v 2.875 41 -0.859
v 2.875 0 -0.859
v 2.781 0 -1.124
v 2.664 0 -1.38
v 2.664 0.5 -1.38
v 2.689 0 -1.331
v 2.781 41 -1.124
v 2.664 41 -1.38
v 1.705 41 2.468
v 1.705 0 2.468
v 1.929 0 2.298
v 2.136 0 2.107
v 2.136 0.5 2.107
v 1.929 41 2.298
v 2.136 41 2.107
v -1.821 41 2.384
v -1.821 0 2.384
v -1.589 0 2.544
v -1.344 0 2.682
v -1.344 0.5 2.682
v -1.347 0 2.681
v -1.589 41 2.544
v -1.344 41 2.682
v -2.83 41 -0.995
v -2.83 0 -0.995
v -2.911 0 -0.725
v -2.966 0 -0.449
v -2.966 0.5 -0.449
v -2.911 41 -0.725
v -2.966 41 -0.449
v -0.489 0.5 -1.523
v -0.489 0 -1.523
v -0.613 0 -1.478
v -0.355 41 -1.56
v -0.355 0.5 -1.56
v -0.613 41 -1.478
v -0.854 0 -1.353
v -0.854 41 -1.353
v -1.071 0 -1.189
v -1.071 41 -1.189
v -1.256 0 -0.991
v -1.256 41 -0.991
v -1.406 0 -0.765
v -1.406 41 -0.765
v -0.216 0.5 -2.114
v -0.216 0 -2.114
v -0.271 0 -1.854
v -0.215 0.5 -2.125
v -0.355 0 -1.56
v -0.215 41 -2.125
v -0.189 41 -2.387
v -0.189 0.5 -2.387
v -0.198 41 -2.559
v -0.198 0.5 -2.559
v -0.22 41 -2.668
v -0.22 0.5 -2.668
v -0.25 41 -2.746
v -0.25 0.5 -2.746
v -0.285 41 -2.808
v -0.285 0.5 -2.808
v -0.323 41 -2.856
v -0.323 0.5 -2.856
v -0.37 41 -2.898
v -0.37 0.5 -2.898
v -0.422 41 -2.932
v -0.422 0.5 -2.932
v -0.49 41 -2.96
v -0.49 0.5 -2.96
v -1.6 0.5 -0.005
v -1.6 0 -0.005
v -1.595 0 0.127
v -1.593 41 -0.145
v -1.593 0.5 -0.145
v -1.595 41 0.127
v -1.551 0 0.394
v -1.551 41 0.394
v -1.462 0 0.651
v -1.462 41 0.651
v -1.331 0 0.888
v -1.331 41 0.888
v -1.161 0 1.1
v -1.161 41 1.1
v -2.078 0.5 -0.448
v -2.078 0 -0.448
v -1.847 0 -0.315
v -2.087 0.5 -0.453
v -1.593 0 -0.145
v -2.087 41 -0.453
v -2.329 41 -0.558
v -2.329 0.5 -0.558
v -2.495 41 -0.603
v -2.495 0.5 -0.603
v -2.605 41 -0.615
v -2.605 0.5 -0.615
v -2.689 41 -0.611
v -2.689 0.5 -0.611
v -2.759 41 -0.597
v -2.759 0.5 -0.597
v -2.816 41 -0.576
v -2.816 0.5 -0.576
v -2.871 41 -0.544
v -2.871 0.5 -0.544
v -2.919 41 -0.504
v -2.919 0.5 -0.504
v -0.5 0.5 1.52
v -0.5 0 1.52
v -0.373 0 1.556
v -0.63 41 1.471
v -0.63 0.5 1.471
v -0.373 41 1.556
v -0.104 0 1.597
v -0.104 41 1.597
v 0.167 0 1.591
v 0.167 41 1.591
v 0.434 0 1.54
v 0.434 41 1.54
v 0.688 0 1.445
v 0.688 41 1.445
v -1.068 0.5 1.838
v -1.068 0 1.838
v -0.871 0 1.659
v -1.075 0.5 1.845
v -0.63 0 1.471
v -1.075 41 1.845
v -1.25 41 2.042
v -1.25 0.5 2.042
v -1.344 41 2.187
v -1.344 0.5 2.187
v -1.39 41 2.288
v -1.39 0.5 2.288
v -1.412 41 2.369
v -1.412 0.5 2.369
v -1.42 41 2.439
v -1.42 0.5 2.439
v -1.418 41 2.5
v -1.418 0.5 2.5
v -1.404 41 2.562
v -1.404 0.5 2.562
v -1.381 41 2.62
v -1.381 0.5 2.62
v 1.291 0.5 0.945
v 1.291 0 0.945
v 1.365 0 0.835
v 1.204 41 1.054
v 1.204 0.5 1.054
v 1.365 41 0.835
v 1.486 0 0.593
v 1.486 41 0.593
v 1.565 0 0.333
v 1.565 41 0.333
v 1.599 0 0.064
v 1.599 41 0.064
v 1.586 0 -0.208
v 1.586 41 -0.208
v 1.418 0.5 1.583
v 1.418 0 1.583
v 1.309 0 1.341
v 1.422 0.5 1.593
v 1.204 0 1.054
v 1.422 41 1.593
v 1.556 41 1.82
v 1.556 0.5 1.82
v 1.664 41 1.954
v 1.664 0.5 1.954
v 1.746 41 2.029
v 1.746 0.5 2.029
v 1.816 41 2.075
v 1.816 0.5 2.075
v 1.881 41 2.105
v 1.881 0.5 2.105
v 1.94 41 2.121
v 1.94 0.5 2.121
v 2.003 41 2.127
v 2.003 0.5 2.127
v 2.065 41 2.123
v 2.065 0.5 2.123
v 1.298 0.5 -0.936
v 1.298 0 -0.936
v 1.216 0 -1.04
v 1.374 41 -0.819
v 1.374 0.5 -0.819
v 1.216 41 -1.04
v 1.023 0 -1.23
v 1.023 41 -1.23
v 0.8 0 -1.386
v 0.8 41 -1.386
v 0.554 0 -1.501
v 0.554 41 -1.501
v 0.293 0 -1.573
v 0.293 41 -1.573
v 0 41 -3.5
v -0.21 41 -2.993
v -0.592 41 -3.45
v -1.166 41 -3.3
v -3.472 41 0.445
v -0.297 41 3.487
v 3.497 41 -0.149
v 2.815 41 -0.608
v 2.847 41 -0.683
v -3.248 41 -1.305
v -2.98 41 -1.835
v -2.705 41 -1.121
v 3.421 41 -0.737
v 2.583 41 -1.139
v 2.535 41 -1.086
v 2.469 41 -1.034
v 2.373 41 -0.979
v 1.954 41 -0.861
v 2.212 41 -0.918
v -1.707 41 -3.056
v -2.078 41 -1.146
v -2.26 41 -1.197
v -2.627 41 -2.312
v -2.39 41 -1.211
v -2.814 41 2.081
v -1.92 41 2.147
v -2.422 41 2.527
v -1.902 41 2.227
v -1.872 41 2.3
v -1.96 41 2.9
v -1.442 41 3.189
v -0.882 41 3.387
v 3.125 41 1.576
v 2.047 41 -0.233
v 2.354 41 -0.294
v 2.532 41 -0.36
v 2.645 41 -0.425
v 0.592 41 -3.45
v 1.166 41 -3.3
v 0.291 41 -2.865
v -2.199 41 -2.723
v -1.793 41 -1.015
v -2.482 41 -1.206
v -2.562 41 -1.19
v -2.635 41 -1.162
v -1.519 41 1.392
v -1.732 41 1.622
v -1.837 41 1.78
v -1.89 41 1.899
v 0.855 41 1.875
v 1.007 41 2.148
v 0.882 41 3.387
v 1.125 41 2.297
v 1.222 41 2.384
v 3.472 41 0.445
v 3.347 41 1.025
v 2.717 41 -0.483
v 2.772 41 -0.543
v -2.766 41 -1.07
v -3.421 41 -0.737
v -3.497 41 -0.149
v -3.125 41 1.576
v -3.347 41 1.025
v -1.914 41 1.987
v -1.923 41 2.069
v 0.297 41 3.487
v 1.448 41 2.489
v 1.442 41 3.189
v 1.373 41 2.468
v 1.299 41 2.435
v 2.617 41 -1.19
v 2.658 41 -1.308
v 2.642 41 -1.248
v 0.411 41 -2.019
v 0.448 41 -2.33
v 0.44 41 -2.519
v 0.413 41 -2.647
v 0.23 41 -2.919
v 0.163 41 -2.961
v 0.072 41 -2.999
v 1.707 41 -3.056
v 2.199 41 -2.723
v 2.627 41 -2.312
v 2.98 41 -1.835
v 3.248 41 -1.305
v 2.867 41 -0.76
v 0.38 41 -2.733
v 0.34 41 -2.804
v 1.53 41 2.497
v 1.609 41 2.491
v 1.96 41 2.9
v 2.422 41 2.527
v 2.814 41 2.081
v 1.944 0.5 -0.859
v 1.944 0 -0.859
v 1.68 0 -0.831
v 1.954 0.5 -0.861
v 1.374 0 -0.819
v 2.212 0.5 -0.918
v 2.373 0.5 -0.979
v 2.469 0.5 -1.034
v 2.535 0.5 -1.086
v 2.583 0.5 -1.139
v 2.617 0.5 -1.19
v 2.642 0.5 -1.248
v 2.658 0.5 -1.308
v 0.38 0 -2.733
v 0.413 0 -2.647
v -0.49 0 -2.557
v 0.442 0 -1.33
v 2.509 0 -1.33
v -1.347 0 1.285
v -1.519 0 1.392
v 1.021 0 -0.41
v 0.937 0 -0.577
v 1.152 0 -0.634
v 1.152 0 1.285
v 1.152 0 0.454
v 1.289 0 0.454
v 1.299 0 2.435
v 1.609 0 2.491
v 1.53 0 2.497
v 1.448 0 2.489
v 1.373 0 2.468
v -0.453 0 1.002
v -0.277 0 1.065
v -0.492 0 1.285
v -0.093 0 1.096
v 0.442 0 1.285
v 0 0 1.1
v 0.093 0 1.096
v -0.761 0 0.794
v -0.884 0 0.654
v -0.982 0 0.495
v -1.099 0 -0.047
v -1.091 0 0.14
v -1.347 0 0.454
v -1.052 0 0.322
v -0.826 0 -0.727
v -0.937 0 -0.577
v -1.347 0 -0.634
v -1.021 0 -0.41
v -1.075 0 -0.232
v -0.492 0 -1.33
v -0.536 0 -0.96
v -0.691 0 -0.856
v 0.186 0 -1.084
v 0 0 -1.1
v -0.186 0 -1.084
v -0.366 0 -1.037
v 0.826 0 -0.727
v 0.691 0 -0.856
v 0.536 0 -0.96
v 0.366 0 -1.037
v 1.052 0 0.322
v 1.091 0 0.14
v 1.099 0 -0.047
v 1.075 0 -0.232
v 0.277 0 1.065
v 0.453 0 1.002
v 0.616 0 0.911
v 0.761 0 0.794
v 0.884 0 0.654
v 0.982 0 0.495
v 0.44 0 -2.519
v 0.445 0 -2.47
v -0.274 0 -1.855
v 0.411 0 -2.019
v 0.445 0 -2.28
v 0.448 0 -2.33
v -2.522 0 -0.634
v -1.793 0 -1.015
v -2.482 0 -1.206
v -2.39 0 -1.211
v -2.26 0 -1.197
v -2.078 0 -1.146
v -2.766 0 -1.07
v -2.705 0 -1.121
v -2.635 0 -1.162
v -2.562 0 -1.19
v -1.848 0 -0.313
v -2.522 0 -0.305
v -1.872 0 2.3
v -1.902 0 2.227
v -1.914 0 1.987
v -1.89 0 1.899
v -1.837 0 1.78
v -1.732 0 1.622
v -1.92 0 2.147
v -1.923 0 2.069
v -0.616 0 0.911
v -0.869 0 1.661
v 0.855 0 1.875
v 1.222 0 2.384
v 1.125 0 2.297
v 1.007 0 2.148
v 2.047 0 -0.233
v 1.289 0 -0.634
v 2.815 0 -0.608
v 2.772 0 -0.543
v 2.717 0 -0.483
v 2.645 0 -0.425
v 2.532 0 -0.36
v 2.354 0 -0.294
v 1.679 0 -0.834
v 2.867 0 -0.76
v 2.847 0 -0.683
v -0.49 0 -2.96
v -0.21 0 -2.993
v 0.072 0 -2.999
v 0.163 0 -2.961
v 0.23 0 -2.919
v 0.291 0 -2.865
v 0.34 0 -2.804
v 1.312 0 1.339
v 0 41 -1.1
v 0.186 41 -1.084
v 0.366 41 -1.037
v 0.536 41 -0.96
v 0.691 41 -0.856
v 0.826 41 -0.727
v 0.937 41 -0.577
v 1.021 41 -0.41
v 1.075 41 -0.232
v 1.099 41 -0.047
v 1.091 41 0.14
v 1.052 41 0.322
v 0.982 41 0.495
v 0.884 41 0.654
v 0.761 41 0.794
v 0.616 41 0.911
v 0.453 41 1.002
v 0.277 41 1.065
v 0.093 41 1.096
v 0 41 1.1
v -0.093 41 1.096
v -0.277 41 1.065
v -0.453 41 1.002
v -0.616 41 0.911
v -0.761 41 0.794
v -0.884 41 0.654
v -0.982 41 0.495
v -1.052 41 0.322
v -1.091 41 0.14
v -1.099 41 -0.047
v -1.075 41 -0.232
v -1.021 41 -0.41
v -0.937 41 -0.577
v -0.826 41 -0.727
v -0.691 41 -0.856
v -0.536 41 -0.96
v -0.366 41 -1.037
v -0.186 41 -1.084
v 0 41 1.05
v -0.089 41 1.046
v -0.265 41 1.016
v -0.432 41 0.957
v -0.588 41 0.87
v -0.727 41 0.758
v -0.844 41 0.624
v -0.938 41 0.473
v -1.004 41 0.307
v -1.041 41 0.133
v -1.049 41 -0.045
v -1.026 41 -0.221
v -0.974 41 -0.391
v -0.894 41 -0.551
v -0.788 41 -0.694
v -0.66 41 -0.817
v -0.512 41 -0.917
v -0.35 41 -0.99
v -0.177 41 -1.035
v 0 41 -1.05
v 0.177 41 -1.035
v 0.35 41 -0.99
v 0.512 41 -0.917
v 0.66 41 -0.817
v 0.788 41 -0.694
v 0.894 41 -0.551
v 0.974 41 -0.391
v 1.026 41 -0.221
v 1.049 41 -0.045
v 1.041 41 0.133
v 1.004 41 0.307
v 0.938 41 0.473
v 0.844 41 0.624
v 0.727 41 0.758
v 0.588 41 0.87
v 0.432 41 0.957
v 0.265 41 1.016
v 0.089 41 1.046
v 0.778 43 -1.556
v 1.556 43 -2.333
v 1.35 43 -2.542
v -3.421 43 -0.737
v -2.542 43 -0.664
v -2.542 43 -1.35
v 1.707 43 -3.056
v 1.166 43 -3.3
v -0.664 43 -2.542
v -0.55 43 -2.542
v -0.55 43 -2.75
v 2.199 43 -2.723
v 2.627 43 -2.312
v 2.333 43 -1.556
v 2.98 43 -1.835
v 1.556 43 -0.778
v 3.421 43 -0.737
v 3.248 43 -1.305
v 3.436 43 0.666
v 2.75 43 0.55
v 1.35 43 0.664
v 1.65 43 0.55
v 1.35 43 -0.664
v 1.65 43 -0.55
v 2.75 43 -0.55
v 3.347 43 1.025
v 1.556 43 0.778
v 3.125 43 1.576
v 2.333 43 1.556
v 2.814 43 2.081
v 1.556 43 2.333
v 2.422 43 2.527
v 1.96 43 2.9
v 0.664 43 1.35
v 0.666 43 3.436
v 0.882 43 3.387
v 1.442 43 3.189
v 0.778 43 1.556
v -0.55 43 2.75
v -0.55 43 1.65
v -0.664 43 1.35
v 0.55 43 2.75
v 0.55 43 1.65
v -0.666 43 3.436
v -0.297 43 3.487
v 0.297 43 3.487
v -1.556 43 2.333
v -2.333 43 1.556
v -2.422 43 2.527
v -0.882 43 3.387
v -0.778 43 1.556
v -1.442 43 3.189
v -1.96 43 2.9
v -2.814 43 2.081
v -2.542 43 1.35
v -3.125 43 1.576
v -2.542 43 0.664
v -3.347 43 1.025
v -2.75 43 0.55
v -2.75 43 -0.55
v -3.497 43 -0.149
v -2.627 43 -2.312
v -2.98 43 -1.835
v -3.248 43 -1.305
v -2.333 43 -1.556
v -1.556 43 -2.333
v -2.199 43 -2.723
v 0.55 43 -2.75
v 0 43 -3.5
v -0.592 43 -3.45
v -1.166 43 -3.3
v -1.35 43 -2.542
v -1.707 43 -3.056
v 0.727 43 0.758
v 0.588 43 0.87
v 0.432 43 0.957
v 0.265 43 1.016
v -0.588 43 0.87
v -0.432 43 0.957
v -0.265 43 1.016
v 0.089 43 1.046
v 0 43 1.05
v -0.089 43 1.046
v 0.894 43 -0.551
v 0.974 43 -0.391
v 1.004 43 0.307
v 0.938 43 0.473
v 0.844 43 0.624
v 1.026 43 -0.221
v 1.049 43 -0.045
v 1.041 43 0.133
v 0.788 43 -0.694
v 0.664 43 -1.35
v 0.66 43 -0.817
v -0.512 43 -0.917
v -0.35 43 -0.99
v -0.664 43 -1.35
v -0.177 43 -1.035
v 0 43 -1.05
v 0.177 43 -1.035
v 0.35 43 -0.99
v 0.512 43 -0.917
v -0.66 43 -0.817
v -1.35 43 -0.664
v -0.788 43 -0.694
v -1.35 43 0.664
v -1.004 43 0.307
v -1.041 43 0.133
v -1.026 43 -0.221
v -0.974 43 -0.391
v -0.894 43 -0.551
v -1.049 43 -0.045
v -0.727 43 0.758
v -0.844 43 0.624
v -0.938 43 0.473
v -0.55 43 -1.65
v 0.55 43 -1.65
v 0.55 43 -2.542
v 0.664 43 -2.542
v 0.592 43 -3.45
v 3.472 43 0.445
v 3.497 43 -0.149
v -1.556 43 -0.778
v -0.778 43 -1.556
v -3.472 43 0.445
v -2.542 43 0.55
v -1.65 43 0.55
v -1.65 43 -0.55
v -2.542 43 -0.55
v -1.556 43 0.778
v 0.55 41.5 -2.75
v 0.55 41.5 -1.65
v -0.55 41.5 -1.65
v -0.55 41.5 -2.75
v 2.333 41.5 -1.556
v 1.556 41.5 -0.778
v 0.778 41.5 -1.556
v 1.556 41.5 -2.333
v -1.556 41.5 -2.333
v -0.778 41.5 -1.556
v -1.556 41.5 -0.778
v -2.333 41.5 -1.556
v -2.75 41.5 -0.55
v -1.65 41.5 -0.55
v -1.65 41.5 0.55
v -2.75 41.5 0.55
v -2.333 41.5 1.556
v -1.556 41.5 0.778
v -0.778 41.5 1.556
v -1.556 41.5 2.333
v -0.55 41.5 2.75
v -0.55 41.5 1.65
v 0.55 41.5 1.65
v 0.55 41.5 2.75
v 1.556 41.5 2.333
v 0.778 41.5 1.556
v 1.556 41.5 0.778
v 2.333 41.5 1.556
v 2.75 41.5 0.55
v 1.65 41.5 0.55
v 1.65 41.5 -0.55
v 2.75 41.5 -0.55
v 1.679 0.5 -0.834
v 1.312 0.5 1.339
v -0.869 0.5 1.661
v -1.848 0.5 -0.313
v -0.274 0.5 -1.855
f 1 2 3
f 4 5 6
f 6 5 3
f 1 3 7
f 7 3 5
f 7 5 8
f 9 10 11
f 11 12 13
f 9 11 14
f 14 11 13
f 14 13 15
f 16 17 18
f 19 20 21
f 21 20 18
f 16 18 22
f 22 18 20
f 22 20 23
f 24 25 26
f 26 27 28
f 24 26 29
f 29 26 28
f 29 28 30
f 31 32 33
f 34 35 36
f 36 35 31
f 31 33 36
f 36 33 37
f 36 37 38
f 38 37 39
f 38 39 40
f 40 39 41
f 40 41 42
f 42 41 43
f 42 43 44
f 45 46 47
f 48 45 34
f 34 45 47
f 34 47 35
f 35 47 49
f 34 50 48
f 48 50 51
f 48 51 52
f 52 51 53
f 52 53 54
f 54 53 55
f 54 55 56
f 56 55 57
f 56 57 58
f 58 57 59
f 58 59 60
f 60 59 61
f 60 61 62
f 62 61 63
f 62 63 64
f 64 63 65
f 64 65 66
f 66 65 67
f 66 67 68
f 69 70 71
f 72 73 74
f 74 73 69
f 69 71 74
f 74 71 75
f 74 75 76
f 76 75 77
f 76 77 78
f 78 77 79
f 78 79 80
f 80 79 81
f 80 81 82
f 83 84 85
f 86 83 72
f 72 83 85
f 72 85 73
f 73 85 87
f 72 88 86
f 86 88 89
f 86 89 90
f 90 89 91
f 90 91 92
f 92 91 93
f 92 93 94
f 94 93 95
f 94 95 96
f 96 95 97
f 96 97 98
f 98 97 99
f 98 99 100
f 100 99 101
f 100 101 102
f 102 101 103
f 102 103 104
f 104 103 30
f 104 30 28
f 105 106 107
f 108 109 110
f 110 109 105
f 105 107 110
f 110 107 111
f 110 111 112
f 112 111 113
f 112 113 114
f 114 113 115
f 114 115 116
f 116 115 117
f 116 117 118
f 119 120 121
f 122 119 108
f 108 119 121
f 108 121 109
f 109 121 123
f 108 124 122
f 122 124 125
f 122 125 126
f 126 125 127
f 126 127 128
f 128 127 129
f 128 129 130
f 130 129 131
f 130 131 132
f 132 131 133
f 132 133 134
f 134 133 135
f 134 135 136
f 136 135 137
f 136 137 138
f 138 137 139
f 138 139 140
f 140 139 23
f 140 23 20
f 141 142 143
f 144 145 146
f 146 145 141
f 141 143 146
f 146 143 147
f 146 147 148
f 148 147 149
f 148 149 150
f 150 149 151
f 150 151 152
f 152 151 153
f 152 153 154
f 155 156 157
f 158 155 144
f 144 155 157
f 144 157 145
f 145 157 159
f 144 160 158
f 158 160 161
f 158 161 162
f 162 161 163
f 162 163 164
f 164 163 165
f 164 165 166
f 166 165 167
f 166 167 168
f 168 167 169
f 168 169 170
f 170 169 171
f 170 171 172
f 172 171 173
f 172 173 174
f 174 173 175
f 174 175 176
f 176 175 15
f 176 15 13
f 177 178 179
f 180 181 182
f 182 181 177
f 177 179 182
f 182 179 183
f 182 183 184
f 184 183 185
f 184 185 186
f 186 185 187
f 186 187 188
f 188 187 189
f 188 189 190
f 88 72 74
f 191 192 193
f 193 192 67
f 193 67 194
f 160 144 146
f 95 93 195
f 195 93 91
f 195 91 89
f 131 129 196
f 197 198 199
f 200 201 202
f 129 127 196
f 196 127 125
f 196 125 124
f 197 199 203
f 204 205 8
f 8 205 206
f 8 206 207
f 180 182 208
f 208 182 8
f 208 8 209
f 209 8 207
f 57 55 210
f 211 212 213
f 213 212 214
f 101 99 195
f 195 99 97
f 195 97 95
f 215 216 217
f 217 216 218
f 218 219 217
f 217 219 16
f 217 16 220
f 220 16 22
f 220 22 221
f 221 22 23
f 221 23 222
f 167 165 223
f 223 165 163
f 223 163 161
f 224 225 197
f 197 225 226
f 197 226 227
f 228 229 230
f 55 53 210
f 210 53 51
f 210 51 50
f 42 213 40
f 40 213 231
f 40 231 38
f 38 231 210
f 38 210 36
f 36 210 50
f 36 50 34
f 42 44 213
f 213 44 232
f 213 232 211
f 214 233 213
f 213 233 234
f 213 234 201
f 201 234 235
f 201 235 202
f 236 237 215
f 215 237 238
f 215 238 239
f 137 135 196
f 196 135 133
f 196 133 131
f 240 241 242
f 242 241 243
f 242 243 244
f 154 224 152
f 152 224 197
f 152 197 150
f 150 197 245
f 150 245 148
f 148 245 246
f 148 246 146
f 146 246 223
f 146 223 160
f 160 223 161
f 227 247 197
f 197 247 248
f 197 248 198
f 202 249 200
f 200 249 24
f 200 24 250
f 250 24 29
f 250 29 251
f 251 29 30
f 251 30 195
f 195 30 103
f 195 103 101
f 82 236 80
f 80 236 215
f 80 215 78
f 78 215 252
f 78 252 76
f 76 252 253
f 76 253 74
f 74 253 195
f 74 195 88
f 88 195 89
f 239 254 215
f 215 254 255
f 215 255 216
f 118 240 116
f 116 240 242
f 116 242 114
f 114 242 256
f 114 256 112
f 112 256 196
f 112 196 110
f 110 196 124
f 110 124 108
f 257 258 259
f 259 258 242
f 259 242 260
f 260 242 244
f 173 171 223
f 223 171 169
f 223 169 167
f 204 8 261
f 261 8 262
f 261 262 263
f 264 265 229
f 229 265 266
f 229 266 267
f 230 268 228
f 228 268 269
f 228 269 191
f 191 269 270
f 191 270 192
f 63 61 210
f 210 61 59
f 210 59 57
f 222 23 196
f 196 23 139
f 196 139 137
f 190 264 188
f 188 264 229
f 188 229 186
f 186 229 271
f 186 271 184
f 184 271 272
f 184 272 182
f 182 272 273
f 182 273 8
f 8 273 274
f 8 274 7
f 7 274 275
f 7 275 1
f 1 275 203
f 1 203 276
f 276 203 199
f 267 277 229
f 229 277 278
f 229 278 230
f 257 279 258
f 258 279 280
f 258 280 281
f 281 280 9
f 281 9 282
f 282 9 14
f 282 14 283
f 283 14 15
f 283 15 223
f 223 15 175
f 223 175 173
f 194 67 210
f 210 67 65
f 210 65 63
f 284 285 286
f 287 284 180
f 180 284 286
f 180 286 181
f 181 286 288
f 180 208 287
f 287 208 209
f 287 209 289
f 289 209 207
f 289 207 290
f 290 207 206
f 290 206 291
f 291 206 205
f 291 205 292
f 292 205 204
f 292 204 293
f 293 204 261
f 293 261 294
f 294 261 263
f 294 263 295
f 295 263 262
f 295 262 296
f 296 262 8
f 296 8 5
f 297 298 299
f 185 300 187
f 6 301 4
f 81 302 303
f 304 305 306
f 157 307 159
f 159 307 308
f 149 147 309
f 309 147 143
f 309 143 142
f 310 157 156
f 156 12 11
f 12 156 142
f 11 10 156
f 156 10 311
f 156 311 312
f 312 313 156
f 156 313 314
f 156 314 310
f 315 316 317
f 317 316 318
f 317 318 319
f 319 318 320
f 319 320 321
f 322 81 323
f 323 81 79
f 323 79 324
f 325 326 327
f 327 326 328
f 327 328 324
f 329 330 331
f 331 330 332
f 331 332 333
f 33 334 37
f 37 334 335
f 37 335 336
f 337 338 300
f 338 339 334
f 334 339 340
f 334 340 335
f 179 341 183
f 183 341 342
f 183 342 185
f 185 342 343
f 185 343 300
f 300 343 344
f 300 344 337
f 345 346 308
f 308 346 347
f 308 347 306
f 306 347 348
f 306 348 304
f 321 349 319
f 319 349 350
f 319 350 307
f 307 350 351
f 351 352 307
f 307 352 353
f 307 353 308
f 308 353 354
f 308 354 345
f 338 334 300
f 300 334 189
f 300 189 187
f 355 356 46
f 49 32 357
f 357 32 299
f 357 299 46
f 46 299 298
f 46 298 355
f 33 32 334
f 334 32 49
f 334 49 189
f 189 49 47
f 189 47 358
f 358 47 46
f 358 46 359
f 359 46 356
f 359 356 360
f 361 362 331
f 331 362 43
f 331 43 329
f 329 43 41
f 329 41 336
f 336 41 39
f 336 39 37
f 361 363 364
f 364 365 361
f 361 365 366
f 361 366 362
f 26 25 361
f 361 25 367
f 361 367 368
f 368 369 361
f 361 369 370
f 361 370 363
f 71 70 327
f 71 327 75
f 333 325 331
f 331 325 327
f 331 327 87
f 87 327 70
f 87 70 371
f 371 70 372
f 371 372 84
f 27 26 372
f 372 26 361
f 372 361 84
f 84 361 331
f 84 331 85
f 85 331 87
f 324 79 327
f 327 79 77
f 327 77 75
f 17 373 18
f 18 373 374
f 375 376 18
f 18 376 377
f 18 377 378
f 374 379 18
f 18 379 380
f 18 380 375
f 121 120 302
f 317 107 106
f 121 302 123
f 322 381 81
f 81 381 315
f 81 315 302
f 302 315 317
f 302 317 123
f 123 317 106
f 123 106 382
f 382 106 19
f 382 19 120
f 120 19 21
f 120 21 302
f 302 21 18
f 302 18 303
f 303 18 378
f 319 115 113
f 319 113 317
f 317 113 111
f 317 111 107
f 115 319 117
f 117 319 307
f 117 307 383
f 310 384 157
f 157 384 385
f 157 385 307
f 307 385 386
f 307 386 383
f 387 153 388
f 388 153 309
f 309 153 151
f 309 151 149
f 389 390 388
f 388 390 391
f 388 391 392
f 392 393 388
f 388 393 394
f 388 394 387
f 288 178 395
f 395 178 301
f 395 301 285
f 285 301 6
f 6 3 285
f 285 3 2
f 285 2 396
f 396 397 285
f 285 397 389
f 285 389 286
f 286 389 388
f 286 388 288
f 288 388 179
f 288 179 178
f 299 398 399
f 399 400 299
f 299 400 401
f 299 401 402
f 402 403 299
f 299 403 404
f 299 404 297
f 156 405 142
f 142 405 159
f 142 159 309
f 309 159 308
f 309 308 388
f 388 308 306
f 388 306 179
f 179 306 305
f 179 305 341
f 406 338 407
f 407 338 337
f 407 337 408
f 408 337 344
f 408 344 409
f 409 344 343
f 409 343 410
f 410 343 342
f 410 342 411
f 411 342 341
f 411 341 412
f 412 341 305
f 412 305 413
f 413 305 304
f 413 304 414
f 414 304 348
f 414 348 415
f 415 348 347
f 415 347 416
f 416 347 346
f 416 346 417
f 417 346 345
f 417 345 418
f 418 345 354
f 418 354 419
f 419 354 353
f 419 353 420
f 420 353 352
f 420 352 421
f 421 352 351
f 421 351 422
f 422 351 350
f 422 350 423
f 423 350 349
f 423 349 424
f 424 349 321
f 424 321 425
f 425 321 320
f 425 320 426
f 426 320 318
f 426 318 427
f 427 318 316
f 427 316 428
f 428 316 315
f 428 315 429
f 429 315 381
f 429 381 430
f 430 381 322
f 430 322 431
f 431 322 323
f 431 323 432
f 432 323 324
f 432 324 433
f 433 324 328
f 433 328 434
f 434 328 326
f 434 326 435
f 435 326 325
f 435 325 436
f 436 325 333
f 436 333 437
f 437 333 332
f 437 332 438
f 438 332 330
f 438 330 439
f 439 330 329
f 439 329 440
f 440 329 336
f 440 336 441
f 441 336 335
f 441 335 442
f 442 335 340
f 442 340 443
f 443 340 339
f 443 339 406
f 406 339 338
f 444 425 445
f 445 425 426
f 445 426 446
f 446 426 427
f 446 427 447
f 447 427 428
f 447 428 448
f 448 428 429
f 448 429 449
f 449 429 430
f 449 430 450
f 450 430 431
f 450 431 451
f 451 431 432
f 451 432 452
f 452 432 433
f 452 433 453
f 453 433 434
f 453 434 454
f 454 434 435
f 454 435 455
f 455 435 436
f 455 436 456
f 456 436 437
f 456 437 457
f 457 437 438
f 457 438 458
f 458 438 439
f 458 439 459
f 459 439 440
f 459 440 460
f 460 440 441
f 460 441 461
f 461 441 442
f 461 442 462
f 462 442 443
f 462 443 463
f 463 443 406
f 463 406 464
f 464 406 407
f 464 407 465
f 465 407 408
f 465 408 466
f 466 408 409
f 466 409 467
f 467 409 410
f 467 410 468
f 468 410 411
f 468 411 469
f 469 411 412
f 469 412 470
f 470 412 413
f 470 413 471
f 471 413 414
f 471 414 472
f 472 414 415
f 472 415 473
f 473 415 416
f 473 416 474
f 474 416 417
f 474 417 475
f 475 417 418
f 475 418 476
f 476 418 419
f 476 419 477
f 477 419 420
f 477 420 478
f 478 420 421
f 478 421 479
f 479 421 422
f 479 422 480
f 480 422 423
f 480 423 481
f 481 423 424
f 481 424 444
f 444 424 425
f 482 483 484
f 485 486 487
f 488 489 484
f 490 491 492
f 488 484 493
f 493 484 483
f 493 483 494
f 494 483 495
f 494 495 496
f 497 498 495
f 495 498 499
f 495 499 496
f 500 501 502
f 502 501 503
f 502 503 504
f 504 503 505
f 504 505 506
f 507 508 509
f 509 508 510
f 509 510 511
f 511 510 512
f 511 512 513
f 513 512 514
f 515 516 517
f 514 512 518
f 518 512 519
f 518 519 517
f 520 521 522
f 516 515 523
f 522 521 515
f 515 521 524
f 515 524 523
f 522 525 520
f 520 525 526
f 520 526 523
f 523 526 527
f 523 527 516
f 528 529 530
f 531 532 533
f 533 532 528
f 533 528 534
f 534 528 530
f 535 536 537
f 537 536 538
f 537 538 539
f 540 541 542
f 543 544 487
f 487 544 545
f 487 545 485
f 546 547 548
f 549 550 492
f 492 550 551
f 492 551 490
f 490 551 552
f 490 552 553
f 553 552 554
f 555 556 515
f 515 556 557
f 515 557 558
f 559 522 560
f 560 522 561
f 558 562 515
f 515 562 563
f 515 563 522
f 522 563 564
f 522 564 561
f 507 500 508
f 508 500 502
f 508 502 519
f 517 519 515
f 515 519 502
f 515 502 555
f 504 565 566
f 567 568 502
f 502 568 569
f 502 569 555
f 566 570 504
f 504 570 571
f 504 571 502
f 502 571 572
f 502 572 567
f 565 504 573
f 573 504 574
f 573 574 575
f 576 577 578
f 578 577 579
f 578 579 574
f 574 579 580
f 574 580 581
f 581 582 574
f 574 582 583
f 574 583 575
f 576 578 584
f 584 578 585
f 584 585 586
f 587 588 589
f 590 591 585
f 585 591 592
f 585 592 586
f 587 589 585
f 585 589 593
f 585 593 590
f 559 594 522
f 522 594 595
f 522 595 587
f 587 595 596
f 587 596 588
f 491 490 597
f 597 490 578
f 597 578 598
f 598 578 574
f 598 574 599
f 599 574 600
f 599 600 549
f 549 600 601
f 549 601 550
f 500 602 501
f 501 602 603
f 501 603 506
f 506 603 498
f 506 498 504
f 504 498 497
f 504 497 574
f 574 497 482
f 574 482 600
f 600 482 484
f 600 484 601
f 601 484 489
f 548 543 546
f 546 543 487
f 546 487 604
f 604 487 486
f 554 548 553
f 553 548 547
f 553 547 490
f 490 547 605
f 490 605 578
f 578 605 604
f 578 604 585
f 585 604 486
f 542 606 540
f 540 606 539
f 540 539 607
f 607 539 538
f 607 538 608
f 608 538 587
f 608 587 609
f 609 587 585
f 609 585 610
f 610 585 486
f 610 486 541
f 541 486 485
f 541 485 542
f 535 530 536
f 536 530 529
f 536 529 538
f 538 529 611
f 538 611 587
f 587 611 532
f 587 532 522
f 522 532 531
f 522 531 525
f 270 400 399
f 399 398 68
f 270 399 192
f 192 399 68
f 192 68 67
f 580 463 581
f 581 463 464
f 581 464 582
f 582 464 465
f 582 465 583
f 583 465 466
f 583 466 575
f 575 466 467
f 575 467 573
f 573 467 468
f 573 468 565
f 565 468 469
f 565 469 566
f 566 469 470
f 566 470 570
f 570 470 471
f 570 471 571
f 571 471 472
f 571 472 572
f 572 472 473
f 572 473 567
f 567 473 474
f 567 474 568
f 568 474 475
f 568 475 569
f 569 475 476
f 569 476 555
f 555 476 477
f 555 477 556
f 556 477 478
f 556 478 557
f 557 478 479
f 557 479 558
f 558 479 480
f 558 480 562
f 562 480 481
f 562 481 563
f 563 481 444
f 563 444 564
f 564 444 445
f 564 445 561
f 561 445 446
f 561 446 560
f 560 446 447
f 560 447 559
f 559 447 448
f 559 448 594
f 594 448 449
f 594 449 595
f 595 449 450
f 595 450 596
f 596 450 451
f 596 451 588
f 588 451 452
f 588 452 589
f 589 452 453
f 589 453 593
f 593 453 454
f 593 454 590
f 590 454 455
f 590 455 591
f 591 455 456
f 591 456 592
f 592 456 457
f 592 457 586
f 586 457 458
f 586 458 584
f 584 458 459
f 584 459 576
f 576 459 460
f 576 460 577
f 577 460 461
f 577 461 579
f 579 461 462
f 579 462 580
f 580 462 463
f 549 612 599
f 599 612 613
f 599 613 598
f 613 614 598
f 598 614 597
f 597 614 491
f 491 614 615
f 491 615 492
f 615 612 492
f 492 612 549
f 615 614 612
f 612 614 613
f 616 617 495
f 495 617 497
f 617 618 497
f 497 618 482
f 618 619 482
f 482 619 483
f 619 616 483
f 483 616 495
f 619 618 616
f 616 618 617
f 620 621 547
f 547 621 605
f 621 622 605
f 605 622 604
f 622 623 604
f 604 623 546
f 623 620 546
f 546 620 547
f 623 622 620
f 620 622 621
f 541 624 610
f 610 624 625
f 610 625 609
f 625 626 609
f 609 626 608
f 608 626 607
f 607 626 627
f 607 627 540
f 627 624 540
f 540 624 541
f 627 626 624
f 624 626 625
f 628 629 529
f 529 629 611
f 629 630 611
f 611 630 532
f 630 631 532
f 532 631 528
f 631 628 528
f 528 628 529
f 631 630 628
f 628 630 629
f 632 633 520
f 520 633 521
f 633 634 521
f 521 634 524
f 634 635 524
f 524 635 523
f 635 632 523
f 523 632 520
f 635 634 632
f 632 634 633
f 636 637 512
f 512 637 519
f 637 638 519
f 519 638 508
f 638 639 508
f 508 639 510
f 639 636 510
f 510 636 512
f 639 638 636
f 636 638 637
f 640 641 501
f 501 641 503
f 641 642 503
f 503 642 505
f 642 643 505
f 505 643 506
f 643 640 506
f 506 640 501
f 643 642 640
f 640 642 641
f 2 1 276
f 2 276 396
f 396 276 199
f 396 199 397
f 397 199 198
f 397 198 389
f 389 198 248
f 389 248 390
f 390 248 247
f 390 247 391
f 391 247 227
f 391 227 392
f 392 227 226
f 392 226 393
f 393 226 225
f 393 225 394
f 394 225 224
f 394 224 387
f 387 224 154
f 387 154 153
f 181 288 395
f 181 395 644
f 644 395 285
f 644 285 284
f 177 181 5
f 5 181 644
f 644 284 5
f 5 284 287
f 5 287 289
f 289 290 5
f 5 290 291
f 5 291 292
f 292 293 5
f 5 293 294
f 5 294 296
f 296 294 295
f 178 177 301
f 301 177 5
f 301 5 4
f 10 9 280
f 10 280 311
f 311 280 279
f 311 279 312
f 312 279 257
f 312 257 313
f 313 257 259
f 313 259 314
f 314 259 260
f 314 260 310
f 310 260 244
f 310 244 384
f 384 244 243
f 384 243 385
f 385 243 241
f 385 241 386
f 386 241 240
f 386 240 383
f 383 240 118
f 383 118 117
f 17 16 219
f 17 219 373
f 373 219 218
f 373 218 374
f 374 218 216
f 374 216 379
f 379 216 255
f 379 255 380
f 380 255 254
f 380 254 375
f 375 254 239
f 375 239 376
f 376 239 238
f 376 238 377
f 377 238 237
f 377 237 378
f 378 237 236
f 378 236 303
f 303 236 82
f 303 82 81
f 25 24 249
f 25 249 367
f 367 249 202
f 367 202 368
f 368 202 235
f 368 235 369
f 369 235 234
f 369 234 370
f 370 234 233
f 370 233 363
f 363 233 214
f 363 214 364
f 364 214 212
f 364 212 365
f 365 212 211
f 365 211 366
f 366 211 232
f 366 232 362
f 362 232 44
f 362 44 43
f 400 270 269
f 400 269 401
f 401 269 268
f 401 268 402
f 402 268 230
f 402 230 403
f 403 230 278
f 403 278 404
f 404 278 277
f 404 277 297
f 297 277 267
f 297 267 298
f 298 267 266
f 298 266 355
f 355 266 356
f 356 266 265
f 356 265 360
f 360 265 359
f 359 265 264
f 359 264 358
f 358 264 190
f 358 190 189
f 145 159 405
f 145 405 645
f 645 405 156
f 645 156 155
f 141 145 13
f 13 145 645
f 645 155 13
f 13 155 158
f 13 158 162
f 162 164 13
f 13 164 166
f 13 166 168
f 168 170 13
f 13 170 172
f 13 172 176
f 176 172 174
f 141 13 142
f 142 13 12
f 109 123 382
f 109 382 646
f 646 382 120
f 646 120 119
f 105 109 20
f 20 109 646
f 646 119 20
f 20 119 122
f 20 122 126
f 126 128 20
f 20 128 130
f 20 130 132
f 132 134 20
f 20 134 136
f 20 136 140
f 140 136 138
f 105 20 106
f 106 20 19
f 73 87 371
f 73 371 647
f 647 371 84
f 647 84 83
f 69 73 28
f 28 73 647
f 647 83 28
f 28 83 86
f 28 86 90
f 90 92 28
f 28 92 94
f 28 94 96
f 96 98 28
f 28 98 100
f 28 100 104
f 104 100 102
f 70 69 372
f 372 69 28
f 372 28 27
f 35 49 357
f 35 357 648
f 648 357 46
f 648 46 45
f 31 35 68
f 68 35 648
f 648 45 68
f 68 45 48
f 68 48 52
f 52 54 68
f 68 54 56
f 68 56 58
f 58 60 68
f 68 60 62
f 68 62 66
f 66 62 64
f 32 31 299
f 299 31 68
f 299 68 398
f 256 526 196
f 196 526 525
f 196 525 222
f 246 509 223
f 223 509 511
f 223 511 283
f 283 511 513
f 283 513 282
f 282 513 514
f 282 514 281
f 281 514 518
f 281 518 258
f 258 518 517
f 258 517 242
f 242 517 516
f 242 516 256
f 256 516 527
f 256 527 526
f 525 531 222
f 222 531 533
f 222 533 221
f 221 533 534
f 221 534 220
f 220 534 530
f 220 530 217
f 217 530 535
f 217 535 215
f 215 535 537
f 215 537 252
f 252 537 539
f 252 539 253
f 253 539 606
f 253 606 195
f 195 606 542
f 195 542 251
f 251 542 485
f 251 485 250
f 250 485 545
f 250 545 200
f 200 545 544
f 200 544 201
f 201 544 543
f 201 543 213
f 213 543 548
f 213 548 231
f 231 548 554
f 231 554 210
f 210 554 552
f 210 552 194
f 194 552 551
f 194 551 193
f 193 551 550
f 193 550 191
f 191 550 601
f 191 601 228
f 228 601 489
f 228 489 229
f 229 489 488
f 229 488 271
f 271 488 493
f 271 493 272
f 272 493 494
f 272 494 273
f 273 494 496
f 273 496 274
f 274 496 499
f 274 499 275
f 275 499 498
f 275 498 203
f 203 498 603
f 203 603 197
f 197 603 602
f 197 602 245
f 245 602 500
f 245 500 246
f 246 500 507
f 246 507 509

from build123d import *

# Parameters (mm, degrees)
SKETCH1_R           = 1.6
SKETCH1_R_2         = 1.1
BOSS_EXTRUDE1_DEPTH = 41
SKETCH2_R           = 3
SKETCH2_R_2         = 1.05
BOSS_EXTRUDE2_DEPTH = 2
SKETCH4_W           = 1.1
SKETCH4_H           = 1.1
CUT_EXTRUDE2_DEPTH  = 1.5
CIRPATTERN2_COUNT   = 8
BOSS_EXTRUDE3_DEPTH = 41
BOSS_EXTRUDE4_DEPTH = 0.5
CIRPATTERN3_COUNT   = 5
SKETCH9_R           = 3.5
SKETCH9_R_2         = 3
BOSS_EXTRUDE5_DEPTH = 2


with BuildPart() as part:
    # Sketch1 → Boss-Extrude1 (new body)
    with BuildSketch(Plane(origin=(0, 0, 0), x_dir=(1, 0, 0), z_dir=(0, 1, 0))):
        Circle(SKETCH1_R)
        Circle(SKETCH1_R_2, mode=Mode.SUBTRACT)
    extrude(amount=BOSS_EXTRUDE1_DEPTH)

    # Sketch2 → Boss-Extrude2 (add)
    with BuildSketch(Plane(origin=(0, 41, 0), x_dir=(1, 0, 0), z_dir=(0, 1, 0))):
        Circle(SKETCH2_R)
        Circle(SKETCH2_R_2, mode=Mode.SUBTRACT)
    extrude(amount=BOSS_EXTRUDE2_DEPTH)

    # Sketch4 → Cut-Extrude2 (cut)
    with BuildSketch(Plane(origin=(0, 43, 0), x_dir=(1, 0, 0), z_dir=(0, 1, 0))):
        with Locations((0, 2.2)):
            Rectangle(SKETCH4_W, SKETCH4_H)
    cut_extrude2 = extrude(amount=-CUT_EXTRUDE2_DEPTH, mode=Mode.SUBTRACT)

    # CirPattern2: Cut-Extrude2 ×8 about axis
    cirpattern2_axis = Axis((0, 0, 0), (0, 1, 0))
    for i in range(1, CIRPATTERN2_COUNT):
        add(cut_extrude2.rotate(cirpattern2_axis, i * 360 / CIRPATTERN2_COUNT), mode=Mode.SUBTRACT)

    # Sketch6 → Boss-Extrude3 (add)
    with BuildSketch(Plane.XZ.offset(-41)):
        with BuildLine():
            ThreePointArc((1.58647512, -0.20759743), (1.511644009, -0.524339955), (1.374265367, -0.819386783))
            add(Edge.make_bspline(
                [(1.374265367, -0.819386783), (2.663604789, -0.829341718), (2.663604789, -1.380293276)],
                knots=[0, 0, 0, 1, 1, 1], degree=2))
            ThreePointArc((2.663604789, -1.380293276), (2.781312042, -1.124412436), (2.874503573, -0.858620525))
            add(Edge.make_bspline(
                [(1.58647512, -0.20759743), (2.874503573, -0.20759743), (2.874503573, -0.858620525)],
                knots=[0, 0, 0, 1, 1, 1], degree=2))
        make_face()
    boss_extrude3 = extrude(amount=BOSS_EXTRUDE3_DEPTH)

    # Sketch7 → Boss-Extrude4 (add)
    with BuildSketch(Plane(origin=(0, 0, 0), x_dir=(1, 0, 0), z_dir=(0, 1, 0))):
        with BuildLine():
            Line((1.297621609, 0.936043888), (2.663604789, 1.380293276))
            add(Edge.make_bspline(
                [(1.374265367, 0.819386783), (2.874503573, 0.858620525), (2.663604789, 1.380293276)],
                knots=[0, 0, 0, 1, 1, 1], degree=2))
            ThreePointArc((1.374265367, 0.819386783), (1.337216222, 0.878551522), (1.297621609, 0.936043888))
        make_face()
    boss_extrude4 = extrude(amount=BOSS_EXTRUDE4_DEPTH)

    # CirPattern3: Boss-Extrude3, Boss-Extrude4 ×5 about axis
    cirpattern3_axis = Axis((0, 41, 0), (0, -1, 0))
    for i in range(1, CIRPATTERN3_COUNT):
        add(boss_extrude3.rotate(cirpattern3_axis, i * 360 / CIRPATTERN3_COUNT))
        add(boss_extrude4.rotate(cirpattern3_axis, i * 360 / CIRPATTERN3_COUNT))

    # Sketch9 → Boss-Extrude5 (add)
    with BuildSketch(Plane.XZ.offset(-41)):
        Circle(SKETCH9_R)
        Circle(SKETCH9_R_2, mode=Mode.SUBTRACT)
    extrude(amount=-BOSS_EXTRUDE5_DEPTH)


solid = part.part
